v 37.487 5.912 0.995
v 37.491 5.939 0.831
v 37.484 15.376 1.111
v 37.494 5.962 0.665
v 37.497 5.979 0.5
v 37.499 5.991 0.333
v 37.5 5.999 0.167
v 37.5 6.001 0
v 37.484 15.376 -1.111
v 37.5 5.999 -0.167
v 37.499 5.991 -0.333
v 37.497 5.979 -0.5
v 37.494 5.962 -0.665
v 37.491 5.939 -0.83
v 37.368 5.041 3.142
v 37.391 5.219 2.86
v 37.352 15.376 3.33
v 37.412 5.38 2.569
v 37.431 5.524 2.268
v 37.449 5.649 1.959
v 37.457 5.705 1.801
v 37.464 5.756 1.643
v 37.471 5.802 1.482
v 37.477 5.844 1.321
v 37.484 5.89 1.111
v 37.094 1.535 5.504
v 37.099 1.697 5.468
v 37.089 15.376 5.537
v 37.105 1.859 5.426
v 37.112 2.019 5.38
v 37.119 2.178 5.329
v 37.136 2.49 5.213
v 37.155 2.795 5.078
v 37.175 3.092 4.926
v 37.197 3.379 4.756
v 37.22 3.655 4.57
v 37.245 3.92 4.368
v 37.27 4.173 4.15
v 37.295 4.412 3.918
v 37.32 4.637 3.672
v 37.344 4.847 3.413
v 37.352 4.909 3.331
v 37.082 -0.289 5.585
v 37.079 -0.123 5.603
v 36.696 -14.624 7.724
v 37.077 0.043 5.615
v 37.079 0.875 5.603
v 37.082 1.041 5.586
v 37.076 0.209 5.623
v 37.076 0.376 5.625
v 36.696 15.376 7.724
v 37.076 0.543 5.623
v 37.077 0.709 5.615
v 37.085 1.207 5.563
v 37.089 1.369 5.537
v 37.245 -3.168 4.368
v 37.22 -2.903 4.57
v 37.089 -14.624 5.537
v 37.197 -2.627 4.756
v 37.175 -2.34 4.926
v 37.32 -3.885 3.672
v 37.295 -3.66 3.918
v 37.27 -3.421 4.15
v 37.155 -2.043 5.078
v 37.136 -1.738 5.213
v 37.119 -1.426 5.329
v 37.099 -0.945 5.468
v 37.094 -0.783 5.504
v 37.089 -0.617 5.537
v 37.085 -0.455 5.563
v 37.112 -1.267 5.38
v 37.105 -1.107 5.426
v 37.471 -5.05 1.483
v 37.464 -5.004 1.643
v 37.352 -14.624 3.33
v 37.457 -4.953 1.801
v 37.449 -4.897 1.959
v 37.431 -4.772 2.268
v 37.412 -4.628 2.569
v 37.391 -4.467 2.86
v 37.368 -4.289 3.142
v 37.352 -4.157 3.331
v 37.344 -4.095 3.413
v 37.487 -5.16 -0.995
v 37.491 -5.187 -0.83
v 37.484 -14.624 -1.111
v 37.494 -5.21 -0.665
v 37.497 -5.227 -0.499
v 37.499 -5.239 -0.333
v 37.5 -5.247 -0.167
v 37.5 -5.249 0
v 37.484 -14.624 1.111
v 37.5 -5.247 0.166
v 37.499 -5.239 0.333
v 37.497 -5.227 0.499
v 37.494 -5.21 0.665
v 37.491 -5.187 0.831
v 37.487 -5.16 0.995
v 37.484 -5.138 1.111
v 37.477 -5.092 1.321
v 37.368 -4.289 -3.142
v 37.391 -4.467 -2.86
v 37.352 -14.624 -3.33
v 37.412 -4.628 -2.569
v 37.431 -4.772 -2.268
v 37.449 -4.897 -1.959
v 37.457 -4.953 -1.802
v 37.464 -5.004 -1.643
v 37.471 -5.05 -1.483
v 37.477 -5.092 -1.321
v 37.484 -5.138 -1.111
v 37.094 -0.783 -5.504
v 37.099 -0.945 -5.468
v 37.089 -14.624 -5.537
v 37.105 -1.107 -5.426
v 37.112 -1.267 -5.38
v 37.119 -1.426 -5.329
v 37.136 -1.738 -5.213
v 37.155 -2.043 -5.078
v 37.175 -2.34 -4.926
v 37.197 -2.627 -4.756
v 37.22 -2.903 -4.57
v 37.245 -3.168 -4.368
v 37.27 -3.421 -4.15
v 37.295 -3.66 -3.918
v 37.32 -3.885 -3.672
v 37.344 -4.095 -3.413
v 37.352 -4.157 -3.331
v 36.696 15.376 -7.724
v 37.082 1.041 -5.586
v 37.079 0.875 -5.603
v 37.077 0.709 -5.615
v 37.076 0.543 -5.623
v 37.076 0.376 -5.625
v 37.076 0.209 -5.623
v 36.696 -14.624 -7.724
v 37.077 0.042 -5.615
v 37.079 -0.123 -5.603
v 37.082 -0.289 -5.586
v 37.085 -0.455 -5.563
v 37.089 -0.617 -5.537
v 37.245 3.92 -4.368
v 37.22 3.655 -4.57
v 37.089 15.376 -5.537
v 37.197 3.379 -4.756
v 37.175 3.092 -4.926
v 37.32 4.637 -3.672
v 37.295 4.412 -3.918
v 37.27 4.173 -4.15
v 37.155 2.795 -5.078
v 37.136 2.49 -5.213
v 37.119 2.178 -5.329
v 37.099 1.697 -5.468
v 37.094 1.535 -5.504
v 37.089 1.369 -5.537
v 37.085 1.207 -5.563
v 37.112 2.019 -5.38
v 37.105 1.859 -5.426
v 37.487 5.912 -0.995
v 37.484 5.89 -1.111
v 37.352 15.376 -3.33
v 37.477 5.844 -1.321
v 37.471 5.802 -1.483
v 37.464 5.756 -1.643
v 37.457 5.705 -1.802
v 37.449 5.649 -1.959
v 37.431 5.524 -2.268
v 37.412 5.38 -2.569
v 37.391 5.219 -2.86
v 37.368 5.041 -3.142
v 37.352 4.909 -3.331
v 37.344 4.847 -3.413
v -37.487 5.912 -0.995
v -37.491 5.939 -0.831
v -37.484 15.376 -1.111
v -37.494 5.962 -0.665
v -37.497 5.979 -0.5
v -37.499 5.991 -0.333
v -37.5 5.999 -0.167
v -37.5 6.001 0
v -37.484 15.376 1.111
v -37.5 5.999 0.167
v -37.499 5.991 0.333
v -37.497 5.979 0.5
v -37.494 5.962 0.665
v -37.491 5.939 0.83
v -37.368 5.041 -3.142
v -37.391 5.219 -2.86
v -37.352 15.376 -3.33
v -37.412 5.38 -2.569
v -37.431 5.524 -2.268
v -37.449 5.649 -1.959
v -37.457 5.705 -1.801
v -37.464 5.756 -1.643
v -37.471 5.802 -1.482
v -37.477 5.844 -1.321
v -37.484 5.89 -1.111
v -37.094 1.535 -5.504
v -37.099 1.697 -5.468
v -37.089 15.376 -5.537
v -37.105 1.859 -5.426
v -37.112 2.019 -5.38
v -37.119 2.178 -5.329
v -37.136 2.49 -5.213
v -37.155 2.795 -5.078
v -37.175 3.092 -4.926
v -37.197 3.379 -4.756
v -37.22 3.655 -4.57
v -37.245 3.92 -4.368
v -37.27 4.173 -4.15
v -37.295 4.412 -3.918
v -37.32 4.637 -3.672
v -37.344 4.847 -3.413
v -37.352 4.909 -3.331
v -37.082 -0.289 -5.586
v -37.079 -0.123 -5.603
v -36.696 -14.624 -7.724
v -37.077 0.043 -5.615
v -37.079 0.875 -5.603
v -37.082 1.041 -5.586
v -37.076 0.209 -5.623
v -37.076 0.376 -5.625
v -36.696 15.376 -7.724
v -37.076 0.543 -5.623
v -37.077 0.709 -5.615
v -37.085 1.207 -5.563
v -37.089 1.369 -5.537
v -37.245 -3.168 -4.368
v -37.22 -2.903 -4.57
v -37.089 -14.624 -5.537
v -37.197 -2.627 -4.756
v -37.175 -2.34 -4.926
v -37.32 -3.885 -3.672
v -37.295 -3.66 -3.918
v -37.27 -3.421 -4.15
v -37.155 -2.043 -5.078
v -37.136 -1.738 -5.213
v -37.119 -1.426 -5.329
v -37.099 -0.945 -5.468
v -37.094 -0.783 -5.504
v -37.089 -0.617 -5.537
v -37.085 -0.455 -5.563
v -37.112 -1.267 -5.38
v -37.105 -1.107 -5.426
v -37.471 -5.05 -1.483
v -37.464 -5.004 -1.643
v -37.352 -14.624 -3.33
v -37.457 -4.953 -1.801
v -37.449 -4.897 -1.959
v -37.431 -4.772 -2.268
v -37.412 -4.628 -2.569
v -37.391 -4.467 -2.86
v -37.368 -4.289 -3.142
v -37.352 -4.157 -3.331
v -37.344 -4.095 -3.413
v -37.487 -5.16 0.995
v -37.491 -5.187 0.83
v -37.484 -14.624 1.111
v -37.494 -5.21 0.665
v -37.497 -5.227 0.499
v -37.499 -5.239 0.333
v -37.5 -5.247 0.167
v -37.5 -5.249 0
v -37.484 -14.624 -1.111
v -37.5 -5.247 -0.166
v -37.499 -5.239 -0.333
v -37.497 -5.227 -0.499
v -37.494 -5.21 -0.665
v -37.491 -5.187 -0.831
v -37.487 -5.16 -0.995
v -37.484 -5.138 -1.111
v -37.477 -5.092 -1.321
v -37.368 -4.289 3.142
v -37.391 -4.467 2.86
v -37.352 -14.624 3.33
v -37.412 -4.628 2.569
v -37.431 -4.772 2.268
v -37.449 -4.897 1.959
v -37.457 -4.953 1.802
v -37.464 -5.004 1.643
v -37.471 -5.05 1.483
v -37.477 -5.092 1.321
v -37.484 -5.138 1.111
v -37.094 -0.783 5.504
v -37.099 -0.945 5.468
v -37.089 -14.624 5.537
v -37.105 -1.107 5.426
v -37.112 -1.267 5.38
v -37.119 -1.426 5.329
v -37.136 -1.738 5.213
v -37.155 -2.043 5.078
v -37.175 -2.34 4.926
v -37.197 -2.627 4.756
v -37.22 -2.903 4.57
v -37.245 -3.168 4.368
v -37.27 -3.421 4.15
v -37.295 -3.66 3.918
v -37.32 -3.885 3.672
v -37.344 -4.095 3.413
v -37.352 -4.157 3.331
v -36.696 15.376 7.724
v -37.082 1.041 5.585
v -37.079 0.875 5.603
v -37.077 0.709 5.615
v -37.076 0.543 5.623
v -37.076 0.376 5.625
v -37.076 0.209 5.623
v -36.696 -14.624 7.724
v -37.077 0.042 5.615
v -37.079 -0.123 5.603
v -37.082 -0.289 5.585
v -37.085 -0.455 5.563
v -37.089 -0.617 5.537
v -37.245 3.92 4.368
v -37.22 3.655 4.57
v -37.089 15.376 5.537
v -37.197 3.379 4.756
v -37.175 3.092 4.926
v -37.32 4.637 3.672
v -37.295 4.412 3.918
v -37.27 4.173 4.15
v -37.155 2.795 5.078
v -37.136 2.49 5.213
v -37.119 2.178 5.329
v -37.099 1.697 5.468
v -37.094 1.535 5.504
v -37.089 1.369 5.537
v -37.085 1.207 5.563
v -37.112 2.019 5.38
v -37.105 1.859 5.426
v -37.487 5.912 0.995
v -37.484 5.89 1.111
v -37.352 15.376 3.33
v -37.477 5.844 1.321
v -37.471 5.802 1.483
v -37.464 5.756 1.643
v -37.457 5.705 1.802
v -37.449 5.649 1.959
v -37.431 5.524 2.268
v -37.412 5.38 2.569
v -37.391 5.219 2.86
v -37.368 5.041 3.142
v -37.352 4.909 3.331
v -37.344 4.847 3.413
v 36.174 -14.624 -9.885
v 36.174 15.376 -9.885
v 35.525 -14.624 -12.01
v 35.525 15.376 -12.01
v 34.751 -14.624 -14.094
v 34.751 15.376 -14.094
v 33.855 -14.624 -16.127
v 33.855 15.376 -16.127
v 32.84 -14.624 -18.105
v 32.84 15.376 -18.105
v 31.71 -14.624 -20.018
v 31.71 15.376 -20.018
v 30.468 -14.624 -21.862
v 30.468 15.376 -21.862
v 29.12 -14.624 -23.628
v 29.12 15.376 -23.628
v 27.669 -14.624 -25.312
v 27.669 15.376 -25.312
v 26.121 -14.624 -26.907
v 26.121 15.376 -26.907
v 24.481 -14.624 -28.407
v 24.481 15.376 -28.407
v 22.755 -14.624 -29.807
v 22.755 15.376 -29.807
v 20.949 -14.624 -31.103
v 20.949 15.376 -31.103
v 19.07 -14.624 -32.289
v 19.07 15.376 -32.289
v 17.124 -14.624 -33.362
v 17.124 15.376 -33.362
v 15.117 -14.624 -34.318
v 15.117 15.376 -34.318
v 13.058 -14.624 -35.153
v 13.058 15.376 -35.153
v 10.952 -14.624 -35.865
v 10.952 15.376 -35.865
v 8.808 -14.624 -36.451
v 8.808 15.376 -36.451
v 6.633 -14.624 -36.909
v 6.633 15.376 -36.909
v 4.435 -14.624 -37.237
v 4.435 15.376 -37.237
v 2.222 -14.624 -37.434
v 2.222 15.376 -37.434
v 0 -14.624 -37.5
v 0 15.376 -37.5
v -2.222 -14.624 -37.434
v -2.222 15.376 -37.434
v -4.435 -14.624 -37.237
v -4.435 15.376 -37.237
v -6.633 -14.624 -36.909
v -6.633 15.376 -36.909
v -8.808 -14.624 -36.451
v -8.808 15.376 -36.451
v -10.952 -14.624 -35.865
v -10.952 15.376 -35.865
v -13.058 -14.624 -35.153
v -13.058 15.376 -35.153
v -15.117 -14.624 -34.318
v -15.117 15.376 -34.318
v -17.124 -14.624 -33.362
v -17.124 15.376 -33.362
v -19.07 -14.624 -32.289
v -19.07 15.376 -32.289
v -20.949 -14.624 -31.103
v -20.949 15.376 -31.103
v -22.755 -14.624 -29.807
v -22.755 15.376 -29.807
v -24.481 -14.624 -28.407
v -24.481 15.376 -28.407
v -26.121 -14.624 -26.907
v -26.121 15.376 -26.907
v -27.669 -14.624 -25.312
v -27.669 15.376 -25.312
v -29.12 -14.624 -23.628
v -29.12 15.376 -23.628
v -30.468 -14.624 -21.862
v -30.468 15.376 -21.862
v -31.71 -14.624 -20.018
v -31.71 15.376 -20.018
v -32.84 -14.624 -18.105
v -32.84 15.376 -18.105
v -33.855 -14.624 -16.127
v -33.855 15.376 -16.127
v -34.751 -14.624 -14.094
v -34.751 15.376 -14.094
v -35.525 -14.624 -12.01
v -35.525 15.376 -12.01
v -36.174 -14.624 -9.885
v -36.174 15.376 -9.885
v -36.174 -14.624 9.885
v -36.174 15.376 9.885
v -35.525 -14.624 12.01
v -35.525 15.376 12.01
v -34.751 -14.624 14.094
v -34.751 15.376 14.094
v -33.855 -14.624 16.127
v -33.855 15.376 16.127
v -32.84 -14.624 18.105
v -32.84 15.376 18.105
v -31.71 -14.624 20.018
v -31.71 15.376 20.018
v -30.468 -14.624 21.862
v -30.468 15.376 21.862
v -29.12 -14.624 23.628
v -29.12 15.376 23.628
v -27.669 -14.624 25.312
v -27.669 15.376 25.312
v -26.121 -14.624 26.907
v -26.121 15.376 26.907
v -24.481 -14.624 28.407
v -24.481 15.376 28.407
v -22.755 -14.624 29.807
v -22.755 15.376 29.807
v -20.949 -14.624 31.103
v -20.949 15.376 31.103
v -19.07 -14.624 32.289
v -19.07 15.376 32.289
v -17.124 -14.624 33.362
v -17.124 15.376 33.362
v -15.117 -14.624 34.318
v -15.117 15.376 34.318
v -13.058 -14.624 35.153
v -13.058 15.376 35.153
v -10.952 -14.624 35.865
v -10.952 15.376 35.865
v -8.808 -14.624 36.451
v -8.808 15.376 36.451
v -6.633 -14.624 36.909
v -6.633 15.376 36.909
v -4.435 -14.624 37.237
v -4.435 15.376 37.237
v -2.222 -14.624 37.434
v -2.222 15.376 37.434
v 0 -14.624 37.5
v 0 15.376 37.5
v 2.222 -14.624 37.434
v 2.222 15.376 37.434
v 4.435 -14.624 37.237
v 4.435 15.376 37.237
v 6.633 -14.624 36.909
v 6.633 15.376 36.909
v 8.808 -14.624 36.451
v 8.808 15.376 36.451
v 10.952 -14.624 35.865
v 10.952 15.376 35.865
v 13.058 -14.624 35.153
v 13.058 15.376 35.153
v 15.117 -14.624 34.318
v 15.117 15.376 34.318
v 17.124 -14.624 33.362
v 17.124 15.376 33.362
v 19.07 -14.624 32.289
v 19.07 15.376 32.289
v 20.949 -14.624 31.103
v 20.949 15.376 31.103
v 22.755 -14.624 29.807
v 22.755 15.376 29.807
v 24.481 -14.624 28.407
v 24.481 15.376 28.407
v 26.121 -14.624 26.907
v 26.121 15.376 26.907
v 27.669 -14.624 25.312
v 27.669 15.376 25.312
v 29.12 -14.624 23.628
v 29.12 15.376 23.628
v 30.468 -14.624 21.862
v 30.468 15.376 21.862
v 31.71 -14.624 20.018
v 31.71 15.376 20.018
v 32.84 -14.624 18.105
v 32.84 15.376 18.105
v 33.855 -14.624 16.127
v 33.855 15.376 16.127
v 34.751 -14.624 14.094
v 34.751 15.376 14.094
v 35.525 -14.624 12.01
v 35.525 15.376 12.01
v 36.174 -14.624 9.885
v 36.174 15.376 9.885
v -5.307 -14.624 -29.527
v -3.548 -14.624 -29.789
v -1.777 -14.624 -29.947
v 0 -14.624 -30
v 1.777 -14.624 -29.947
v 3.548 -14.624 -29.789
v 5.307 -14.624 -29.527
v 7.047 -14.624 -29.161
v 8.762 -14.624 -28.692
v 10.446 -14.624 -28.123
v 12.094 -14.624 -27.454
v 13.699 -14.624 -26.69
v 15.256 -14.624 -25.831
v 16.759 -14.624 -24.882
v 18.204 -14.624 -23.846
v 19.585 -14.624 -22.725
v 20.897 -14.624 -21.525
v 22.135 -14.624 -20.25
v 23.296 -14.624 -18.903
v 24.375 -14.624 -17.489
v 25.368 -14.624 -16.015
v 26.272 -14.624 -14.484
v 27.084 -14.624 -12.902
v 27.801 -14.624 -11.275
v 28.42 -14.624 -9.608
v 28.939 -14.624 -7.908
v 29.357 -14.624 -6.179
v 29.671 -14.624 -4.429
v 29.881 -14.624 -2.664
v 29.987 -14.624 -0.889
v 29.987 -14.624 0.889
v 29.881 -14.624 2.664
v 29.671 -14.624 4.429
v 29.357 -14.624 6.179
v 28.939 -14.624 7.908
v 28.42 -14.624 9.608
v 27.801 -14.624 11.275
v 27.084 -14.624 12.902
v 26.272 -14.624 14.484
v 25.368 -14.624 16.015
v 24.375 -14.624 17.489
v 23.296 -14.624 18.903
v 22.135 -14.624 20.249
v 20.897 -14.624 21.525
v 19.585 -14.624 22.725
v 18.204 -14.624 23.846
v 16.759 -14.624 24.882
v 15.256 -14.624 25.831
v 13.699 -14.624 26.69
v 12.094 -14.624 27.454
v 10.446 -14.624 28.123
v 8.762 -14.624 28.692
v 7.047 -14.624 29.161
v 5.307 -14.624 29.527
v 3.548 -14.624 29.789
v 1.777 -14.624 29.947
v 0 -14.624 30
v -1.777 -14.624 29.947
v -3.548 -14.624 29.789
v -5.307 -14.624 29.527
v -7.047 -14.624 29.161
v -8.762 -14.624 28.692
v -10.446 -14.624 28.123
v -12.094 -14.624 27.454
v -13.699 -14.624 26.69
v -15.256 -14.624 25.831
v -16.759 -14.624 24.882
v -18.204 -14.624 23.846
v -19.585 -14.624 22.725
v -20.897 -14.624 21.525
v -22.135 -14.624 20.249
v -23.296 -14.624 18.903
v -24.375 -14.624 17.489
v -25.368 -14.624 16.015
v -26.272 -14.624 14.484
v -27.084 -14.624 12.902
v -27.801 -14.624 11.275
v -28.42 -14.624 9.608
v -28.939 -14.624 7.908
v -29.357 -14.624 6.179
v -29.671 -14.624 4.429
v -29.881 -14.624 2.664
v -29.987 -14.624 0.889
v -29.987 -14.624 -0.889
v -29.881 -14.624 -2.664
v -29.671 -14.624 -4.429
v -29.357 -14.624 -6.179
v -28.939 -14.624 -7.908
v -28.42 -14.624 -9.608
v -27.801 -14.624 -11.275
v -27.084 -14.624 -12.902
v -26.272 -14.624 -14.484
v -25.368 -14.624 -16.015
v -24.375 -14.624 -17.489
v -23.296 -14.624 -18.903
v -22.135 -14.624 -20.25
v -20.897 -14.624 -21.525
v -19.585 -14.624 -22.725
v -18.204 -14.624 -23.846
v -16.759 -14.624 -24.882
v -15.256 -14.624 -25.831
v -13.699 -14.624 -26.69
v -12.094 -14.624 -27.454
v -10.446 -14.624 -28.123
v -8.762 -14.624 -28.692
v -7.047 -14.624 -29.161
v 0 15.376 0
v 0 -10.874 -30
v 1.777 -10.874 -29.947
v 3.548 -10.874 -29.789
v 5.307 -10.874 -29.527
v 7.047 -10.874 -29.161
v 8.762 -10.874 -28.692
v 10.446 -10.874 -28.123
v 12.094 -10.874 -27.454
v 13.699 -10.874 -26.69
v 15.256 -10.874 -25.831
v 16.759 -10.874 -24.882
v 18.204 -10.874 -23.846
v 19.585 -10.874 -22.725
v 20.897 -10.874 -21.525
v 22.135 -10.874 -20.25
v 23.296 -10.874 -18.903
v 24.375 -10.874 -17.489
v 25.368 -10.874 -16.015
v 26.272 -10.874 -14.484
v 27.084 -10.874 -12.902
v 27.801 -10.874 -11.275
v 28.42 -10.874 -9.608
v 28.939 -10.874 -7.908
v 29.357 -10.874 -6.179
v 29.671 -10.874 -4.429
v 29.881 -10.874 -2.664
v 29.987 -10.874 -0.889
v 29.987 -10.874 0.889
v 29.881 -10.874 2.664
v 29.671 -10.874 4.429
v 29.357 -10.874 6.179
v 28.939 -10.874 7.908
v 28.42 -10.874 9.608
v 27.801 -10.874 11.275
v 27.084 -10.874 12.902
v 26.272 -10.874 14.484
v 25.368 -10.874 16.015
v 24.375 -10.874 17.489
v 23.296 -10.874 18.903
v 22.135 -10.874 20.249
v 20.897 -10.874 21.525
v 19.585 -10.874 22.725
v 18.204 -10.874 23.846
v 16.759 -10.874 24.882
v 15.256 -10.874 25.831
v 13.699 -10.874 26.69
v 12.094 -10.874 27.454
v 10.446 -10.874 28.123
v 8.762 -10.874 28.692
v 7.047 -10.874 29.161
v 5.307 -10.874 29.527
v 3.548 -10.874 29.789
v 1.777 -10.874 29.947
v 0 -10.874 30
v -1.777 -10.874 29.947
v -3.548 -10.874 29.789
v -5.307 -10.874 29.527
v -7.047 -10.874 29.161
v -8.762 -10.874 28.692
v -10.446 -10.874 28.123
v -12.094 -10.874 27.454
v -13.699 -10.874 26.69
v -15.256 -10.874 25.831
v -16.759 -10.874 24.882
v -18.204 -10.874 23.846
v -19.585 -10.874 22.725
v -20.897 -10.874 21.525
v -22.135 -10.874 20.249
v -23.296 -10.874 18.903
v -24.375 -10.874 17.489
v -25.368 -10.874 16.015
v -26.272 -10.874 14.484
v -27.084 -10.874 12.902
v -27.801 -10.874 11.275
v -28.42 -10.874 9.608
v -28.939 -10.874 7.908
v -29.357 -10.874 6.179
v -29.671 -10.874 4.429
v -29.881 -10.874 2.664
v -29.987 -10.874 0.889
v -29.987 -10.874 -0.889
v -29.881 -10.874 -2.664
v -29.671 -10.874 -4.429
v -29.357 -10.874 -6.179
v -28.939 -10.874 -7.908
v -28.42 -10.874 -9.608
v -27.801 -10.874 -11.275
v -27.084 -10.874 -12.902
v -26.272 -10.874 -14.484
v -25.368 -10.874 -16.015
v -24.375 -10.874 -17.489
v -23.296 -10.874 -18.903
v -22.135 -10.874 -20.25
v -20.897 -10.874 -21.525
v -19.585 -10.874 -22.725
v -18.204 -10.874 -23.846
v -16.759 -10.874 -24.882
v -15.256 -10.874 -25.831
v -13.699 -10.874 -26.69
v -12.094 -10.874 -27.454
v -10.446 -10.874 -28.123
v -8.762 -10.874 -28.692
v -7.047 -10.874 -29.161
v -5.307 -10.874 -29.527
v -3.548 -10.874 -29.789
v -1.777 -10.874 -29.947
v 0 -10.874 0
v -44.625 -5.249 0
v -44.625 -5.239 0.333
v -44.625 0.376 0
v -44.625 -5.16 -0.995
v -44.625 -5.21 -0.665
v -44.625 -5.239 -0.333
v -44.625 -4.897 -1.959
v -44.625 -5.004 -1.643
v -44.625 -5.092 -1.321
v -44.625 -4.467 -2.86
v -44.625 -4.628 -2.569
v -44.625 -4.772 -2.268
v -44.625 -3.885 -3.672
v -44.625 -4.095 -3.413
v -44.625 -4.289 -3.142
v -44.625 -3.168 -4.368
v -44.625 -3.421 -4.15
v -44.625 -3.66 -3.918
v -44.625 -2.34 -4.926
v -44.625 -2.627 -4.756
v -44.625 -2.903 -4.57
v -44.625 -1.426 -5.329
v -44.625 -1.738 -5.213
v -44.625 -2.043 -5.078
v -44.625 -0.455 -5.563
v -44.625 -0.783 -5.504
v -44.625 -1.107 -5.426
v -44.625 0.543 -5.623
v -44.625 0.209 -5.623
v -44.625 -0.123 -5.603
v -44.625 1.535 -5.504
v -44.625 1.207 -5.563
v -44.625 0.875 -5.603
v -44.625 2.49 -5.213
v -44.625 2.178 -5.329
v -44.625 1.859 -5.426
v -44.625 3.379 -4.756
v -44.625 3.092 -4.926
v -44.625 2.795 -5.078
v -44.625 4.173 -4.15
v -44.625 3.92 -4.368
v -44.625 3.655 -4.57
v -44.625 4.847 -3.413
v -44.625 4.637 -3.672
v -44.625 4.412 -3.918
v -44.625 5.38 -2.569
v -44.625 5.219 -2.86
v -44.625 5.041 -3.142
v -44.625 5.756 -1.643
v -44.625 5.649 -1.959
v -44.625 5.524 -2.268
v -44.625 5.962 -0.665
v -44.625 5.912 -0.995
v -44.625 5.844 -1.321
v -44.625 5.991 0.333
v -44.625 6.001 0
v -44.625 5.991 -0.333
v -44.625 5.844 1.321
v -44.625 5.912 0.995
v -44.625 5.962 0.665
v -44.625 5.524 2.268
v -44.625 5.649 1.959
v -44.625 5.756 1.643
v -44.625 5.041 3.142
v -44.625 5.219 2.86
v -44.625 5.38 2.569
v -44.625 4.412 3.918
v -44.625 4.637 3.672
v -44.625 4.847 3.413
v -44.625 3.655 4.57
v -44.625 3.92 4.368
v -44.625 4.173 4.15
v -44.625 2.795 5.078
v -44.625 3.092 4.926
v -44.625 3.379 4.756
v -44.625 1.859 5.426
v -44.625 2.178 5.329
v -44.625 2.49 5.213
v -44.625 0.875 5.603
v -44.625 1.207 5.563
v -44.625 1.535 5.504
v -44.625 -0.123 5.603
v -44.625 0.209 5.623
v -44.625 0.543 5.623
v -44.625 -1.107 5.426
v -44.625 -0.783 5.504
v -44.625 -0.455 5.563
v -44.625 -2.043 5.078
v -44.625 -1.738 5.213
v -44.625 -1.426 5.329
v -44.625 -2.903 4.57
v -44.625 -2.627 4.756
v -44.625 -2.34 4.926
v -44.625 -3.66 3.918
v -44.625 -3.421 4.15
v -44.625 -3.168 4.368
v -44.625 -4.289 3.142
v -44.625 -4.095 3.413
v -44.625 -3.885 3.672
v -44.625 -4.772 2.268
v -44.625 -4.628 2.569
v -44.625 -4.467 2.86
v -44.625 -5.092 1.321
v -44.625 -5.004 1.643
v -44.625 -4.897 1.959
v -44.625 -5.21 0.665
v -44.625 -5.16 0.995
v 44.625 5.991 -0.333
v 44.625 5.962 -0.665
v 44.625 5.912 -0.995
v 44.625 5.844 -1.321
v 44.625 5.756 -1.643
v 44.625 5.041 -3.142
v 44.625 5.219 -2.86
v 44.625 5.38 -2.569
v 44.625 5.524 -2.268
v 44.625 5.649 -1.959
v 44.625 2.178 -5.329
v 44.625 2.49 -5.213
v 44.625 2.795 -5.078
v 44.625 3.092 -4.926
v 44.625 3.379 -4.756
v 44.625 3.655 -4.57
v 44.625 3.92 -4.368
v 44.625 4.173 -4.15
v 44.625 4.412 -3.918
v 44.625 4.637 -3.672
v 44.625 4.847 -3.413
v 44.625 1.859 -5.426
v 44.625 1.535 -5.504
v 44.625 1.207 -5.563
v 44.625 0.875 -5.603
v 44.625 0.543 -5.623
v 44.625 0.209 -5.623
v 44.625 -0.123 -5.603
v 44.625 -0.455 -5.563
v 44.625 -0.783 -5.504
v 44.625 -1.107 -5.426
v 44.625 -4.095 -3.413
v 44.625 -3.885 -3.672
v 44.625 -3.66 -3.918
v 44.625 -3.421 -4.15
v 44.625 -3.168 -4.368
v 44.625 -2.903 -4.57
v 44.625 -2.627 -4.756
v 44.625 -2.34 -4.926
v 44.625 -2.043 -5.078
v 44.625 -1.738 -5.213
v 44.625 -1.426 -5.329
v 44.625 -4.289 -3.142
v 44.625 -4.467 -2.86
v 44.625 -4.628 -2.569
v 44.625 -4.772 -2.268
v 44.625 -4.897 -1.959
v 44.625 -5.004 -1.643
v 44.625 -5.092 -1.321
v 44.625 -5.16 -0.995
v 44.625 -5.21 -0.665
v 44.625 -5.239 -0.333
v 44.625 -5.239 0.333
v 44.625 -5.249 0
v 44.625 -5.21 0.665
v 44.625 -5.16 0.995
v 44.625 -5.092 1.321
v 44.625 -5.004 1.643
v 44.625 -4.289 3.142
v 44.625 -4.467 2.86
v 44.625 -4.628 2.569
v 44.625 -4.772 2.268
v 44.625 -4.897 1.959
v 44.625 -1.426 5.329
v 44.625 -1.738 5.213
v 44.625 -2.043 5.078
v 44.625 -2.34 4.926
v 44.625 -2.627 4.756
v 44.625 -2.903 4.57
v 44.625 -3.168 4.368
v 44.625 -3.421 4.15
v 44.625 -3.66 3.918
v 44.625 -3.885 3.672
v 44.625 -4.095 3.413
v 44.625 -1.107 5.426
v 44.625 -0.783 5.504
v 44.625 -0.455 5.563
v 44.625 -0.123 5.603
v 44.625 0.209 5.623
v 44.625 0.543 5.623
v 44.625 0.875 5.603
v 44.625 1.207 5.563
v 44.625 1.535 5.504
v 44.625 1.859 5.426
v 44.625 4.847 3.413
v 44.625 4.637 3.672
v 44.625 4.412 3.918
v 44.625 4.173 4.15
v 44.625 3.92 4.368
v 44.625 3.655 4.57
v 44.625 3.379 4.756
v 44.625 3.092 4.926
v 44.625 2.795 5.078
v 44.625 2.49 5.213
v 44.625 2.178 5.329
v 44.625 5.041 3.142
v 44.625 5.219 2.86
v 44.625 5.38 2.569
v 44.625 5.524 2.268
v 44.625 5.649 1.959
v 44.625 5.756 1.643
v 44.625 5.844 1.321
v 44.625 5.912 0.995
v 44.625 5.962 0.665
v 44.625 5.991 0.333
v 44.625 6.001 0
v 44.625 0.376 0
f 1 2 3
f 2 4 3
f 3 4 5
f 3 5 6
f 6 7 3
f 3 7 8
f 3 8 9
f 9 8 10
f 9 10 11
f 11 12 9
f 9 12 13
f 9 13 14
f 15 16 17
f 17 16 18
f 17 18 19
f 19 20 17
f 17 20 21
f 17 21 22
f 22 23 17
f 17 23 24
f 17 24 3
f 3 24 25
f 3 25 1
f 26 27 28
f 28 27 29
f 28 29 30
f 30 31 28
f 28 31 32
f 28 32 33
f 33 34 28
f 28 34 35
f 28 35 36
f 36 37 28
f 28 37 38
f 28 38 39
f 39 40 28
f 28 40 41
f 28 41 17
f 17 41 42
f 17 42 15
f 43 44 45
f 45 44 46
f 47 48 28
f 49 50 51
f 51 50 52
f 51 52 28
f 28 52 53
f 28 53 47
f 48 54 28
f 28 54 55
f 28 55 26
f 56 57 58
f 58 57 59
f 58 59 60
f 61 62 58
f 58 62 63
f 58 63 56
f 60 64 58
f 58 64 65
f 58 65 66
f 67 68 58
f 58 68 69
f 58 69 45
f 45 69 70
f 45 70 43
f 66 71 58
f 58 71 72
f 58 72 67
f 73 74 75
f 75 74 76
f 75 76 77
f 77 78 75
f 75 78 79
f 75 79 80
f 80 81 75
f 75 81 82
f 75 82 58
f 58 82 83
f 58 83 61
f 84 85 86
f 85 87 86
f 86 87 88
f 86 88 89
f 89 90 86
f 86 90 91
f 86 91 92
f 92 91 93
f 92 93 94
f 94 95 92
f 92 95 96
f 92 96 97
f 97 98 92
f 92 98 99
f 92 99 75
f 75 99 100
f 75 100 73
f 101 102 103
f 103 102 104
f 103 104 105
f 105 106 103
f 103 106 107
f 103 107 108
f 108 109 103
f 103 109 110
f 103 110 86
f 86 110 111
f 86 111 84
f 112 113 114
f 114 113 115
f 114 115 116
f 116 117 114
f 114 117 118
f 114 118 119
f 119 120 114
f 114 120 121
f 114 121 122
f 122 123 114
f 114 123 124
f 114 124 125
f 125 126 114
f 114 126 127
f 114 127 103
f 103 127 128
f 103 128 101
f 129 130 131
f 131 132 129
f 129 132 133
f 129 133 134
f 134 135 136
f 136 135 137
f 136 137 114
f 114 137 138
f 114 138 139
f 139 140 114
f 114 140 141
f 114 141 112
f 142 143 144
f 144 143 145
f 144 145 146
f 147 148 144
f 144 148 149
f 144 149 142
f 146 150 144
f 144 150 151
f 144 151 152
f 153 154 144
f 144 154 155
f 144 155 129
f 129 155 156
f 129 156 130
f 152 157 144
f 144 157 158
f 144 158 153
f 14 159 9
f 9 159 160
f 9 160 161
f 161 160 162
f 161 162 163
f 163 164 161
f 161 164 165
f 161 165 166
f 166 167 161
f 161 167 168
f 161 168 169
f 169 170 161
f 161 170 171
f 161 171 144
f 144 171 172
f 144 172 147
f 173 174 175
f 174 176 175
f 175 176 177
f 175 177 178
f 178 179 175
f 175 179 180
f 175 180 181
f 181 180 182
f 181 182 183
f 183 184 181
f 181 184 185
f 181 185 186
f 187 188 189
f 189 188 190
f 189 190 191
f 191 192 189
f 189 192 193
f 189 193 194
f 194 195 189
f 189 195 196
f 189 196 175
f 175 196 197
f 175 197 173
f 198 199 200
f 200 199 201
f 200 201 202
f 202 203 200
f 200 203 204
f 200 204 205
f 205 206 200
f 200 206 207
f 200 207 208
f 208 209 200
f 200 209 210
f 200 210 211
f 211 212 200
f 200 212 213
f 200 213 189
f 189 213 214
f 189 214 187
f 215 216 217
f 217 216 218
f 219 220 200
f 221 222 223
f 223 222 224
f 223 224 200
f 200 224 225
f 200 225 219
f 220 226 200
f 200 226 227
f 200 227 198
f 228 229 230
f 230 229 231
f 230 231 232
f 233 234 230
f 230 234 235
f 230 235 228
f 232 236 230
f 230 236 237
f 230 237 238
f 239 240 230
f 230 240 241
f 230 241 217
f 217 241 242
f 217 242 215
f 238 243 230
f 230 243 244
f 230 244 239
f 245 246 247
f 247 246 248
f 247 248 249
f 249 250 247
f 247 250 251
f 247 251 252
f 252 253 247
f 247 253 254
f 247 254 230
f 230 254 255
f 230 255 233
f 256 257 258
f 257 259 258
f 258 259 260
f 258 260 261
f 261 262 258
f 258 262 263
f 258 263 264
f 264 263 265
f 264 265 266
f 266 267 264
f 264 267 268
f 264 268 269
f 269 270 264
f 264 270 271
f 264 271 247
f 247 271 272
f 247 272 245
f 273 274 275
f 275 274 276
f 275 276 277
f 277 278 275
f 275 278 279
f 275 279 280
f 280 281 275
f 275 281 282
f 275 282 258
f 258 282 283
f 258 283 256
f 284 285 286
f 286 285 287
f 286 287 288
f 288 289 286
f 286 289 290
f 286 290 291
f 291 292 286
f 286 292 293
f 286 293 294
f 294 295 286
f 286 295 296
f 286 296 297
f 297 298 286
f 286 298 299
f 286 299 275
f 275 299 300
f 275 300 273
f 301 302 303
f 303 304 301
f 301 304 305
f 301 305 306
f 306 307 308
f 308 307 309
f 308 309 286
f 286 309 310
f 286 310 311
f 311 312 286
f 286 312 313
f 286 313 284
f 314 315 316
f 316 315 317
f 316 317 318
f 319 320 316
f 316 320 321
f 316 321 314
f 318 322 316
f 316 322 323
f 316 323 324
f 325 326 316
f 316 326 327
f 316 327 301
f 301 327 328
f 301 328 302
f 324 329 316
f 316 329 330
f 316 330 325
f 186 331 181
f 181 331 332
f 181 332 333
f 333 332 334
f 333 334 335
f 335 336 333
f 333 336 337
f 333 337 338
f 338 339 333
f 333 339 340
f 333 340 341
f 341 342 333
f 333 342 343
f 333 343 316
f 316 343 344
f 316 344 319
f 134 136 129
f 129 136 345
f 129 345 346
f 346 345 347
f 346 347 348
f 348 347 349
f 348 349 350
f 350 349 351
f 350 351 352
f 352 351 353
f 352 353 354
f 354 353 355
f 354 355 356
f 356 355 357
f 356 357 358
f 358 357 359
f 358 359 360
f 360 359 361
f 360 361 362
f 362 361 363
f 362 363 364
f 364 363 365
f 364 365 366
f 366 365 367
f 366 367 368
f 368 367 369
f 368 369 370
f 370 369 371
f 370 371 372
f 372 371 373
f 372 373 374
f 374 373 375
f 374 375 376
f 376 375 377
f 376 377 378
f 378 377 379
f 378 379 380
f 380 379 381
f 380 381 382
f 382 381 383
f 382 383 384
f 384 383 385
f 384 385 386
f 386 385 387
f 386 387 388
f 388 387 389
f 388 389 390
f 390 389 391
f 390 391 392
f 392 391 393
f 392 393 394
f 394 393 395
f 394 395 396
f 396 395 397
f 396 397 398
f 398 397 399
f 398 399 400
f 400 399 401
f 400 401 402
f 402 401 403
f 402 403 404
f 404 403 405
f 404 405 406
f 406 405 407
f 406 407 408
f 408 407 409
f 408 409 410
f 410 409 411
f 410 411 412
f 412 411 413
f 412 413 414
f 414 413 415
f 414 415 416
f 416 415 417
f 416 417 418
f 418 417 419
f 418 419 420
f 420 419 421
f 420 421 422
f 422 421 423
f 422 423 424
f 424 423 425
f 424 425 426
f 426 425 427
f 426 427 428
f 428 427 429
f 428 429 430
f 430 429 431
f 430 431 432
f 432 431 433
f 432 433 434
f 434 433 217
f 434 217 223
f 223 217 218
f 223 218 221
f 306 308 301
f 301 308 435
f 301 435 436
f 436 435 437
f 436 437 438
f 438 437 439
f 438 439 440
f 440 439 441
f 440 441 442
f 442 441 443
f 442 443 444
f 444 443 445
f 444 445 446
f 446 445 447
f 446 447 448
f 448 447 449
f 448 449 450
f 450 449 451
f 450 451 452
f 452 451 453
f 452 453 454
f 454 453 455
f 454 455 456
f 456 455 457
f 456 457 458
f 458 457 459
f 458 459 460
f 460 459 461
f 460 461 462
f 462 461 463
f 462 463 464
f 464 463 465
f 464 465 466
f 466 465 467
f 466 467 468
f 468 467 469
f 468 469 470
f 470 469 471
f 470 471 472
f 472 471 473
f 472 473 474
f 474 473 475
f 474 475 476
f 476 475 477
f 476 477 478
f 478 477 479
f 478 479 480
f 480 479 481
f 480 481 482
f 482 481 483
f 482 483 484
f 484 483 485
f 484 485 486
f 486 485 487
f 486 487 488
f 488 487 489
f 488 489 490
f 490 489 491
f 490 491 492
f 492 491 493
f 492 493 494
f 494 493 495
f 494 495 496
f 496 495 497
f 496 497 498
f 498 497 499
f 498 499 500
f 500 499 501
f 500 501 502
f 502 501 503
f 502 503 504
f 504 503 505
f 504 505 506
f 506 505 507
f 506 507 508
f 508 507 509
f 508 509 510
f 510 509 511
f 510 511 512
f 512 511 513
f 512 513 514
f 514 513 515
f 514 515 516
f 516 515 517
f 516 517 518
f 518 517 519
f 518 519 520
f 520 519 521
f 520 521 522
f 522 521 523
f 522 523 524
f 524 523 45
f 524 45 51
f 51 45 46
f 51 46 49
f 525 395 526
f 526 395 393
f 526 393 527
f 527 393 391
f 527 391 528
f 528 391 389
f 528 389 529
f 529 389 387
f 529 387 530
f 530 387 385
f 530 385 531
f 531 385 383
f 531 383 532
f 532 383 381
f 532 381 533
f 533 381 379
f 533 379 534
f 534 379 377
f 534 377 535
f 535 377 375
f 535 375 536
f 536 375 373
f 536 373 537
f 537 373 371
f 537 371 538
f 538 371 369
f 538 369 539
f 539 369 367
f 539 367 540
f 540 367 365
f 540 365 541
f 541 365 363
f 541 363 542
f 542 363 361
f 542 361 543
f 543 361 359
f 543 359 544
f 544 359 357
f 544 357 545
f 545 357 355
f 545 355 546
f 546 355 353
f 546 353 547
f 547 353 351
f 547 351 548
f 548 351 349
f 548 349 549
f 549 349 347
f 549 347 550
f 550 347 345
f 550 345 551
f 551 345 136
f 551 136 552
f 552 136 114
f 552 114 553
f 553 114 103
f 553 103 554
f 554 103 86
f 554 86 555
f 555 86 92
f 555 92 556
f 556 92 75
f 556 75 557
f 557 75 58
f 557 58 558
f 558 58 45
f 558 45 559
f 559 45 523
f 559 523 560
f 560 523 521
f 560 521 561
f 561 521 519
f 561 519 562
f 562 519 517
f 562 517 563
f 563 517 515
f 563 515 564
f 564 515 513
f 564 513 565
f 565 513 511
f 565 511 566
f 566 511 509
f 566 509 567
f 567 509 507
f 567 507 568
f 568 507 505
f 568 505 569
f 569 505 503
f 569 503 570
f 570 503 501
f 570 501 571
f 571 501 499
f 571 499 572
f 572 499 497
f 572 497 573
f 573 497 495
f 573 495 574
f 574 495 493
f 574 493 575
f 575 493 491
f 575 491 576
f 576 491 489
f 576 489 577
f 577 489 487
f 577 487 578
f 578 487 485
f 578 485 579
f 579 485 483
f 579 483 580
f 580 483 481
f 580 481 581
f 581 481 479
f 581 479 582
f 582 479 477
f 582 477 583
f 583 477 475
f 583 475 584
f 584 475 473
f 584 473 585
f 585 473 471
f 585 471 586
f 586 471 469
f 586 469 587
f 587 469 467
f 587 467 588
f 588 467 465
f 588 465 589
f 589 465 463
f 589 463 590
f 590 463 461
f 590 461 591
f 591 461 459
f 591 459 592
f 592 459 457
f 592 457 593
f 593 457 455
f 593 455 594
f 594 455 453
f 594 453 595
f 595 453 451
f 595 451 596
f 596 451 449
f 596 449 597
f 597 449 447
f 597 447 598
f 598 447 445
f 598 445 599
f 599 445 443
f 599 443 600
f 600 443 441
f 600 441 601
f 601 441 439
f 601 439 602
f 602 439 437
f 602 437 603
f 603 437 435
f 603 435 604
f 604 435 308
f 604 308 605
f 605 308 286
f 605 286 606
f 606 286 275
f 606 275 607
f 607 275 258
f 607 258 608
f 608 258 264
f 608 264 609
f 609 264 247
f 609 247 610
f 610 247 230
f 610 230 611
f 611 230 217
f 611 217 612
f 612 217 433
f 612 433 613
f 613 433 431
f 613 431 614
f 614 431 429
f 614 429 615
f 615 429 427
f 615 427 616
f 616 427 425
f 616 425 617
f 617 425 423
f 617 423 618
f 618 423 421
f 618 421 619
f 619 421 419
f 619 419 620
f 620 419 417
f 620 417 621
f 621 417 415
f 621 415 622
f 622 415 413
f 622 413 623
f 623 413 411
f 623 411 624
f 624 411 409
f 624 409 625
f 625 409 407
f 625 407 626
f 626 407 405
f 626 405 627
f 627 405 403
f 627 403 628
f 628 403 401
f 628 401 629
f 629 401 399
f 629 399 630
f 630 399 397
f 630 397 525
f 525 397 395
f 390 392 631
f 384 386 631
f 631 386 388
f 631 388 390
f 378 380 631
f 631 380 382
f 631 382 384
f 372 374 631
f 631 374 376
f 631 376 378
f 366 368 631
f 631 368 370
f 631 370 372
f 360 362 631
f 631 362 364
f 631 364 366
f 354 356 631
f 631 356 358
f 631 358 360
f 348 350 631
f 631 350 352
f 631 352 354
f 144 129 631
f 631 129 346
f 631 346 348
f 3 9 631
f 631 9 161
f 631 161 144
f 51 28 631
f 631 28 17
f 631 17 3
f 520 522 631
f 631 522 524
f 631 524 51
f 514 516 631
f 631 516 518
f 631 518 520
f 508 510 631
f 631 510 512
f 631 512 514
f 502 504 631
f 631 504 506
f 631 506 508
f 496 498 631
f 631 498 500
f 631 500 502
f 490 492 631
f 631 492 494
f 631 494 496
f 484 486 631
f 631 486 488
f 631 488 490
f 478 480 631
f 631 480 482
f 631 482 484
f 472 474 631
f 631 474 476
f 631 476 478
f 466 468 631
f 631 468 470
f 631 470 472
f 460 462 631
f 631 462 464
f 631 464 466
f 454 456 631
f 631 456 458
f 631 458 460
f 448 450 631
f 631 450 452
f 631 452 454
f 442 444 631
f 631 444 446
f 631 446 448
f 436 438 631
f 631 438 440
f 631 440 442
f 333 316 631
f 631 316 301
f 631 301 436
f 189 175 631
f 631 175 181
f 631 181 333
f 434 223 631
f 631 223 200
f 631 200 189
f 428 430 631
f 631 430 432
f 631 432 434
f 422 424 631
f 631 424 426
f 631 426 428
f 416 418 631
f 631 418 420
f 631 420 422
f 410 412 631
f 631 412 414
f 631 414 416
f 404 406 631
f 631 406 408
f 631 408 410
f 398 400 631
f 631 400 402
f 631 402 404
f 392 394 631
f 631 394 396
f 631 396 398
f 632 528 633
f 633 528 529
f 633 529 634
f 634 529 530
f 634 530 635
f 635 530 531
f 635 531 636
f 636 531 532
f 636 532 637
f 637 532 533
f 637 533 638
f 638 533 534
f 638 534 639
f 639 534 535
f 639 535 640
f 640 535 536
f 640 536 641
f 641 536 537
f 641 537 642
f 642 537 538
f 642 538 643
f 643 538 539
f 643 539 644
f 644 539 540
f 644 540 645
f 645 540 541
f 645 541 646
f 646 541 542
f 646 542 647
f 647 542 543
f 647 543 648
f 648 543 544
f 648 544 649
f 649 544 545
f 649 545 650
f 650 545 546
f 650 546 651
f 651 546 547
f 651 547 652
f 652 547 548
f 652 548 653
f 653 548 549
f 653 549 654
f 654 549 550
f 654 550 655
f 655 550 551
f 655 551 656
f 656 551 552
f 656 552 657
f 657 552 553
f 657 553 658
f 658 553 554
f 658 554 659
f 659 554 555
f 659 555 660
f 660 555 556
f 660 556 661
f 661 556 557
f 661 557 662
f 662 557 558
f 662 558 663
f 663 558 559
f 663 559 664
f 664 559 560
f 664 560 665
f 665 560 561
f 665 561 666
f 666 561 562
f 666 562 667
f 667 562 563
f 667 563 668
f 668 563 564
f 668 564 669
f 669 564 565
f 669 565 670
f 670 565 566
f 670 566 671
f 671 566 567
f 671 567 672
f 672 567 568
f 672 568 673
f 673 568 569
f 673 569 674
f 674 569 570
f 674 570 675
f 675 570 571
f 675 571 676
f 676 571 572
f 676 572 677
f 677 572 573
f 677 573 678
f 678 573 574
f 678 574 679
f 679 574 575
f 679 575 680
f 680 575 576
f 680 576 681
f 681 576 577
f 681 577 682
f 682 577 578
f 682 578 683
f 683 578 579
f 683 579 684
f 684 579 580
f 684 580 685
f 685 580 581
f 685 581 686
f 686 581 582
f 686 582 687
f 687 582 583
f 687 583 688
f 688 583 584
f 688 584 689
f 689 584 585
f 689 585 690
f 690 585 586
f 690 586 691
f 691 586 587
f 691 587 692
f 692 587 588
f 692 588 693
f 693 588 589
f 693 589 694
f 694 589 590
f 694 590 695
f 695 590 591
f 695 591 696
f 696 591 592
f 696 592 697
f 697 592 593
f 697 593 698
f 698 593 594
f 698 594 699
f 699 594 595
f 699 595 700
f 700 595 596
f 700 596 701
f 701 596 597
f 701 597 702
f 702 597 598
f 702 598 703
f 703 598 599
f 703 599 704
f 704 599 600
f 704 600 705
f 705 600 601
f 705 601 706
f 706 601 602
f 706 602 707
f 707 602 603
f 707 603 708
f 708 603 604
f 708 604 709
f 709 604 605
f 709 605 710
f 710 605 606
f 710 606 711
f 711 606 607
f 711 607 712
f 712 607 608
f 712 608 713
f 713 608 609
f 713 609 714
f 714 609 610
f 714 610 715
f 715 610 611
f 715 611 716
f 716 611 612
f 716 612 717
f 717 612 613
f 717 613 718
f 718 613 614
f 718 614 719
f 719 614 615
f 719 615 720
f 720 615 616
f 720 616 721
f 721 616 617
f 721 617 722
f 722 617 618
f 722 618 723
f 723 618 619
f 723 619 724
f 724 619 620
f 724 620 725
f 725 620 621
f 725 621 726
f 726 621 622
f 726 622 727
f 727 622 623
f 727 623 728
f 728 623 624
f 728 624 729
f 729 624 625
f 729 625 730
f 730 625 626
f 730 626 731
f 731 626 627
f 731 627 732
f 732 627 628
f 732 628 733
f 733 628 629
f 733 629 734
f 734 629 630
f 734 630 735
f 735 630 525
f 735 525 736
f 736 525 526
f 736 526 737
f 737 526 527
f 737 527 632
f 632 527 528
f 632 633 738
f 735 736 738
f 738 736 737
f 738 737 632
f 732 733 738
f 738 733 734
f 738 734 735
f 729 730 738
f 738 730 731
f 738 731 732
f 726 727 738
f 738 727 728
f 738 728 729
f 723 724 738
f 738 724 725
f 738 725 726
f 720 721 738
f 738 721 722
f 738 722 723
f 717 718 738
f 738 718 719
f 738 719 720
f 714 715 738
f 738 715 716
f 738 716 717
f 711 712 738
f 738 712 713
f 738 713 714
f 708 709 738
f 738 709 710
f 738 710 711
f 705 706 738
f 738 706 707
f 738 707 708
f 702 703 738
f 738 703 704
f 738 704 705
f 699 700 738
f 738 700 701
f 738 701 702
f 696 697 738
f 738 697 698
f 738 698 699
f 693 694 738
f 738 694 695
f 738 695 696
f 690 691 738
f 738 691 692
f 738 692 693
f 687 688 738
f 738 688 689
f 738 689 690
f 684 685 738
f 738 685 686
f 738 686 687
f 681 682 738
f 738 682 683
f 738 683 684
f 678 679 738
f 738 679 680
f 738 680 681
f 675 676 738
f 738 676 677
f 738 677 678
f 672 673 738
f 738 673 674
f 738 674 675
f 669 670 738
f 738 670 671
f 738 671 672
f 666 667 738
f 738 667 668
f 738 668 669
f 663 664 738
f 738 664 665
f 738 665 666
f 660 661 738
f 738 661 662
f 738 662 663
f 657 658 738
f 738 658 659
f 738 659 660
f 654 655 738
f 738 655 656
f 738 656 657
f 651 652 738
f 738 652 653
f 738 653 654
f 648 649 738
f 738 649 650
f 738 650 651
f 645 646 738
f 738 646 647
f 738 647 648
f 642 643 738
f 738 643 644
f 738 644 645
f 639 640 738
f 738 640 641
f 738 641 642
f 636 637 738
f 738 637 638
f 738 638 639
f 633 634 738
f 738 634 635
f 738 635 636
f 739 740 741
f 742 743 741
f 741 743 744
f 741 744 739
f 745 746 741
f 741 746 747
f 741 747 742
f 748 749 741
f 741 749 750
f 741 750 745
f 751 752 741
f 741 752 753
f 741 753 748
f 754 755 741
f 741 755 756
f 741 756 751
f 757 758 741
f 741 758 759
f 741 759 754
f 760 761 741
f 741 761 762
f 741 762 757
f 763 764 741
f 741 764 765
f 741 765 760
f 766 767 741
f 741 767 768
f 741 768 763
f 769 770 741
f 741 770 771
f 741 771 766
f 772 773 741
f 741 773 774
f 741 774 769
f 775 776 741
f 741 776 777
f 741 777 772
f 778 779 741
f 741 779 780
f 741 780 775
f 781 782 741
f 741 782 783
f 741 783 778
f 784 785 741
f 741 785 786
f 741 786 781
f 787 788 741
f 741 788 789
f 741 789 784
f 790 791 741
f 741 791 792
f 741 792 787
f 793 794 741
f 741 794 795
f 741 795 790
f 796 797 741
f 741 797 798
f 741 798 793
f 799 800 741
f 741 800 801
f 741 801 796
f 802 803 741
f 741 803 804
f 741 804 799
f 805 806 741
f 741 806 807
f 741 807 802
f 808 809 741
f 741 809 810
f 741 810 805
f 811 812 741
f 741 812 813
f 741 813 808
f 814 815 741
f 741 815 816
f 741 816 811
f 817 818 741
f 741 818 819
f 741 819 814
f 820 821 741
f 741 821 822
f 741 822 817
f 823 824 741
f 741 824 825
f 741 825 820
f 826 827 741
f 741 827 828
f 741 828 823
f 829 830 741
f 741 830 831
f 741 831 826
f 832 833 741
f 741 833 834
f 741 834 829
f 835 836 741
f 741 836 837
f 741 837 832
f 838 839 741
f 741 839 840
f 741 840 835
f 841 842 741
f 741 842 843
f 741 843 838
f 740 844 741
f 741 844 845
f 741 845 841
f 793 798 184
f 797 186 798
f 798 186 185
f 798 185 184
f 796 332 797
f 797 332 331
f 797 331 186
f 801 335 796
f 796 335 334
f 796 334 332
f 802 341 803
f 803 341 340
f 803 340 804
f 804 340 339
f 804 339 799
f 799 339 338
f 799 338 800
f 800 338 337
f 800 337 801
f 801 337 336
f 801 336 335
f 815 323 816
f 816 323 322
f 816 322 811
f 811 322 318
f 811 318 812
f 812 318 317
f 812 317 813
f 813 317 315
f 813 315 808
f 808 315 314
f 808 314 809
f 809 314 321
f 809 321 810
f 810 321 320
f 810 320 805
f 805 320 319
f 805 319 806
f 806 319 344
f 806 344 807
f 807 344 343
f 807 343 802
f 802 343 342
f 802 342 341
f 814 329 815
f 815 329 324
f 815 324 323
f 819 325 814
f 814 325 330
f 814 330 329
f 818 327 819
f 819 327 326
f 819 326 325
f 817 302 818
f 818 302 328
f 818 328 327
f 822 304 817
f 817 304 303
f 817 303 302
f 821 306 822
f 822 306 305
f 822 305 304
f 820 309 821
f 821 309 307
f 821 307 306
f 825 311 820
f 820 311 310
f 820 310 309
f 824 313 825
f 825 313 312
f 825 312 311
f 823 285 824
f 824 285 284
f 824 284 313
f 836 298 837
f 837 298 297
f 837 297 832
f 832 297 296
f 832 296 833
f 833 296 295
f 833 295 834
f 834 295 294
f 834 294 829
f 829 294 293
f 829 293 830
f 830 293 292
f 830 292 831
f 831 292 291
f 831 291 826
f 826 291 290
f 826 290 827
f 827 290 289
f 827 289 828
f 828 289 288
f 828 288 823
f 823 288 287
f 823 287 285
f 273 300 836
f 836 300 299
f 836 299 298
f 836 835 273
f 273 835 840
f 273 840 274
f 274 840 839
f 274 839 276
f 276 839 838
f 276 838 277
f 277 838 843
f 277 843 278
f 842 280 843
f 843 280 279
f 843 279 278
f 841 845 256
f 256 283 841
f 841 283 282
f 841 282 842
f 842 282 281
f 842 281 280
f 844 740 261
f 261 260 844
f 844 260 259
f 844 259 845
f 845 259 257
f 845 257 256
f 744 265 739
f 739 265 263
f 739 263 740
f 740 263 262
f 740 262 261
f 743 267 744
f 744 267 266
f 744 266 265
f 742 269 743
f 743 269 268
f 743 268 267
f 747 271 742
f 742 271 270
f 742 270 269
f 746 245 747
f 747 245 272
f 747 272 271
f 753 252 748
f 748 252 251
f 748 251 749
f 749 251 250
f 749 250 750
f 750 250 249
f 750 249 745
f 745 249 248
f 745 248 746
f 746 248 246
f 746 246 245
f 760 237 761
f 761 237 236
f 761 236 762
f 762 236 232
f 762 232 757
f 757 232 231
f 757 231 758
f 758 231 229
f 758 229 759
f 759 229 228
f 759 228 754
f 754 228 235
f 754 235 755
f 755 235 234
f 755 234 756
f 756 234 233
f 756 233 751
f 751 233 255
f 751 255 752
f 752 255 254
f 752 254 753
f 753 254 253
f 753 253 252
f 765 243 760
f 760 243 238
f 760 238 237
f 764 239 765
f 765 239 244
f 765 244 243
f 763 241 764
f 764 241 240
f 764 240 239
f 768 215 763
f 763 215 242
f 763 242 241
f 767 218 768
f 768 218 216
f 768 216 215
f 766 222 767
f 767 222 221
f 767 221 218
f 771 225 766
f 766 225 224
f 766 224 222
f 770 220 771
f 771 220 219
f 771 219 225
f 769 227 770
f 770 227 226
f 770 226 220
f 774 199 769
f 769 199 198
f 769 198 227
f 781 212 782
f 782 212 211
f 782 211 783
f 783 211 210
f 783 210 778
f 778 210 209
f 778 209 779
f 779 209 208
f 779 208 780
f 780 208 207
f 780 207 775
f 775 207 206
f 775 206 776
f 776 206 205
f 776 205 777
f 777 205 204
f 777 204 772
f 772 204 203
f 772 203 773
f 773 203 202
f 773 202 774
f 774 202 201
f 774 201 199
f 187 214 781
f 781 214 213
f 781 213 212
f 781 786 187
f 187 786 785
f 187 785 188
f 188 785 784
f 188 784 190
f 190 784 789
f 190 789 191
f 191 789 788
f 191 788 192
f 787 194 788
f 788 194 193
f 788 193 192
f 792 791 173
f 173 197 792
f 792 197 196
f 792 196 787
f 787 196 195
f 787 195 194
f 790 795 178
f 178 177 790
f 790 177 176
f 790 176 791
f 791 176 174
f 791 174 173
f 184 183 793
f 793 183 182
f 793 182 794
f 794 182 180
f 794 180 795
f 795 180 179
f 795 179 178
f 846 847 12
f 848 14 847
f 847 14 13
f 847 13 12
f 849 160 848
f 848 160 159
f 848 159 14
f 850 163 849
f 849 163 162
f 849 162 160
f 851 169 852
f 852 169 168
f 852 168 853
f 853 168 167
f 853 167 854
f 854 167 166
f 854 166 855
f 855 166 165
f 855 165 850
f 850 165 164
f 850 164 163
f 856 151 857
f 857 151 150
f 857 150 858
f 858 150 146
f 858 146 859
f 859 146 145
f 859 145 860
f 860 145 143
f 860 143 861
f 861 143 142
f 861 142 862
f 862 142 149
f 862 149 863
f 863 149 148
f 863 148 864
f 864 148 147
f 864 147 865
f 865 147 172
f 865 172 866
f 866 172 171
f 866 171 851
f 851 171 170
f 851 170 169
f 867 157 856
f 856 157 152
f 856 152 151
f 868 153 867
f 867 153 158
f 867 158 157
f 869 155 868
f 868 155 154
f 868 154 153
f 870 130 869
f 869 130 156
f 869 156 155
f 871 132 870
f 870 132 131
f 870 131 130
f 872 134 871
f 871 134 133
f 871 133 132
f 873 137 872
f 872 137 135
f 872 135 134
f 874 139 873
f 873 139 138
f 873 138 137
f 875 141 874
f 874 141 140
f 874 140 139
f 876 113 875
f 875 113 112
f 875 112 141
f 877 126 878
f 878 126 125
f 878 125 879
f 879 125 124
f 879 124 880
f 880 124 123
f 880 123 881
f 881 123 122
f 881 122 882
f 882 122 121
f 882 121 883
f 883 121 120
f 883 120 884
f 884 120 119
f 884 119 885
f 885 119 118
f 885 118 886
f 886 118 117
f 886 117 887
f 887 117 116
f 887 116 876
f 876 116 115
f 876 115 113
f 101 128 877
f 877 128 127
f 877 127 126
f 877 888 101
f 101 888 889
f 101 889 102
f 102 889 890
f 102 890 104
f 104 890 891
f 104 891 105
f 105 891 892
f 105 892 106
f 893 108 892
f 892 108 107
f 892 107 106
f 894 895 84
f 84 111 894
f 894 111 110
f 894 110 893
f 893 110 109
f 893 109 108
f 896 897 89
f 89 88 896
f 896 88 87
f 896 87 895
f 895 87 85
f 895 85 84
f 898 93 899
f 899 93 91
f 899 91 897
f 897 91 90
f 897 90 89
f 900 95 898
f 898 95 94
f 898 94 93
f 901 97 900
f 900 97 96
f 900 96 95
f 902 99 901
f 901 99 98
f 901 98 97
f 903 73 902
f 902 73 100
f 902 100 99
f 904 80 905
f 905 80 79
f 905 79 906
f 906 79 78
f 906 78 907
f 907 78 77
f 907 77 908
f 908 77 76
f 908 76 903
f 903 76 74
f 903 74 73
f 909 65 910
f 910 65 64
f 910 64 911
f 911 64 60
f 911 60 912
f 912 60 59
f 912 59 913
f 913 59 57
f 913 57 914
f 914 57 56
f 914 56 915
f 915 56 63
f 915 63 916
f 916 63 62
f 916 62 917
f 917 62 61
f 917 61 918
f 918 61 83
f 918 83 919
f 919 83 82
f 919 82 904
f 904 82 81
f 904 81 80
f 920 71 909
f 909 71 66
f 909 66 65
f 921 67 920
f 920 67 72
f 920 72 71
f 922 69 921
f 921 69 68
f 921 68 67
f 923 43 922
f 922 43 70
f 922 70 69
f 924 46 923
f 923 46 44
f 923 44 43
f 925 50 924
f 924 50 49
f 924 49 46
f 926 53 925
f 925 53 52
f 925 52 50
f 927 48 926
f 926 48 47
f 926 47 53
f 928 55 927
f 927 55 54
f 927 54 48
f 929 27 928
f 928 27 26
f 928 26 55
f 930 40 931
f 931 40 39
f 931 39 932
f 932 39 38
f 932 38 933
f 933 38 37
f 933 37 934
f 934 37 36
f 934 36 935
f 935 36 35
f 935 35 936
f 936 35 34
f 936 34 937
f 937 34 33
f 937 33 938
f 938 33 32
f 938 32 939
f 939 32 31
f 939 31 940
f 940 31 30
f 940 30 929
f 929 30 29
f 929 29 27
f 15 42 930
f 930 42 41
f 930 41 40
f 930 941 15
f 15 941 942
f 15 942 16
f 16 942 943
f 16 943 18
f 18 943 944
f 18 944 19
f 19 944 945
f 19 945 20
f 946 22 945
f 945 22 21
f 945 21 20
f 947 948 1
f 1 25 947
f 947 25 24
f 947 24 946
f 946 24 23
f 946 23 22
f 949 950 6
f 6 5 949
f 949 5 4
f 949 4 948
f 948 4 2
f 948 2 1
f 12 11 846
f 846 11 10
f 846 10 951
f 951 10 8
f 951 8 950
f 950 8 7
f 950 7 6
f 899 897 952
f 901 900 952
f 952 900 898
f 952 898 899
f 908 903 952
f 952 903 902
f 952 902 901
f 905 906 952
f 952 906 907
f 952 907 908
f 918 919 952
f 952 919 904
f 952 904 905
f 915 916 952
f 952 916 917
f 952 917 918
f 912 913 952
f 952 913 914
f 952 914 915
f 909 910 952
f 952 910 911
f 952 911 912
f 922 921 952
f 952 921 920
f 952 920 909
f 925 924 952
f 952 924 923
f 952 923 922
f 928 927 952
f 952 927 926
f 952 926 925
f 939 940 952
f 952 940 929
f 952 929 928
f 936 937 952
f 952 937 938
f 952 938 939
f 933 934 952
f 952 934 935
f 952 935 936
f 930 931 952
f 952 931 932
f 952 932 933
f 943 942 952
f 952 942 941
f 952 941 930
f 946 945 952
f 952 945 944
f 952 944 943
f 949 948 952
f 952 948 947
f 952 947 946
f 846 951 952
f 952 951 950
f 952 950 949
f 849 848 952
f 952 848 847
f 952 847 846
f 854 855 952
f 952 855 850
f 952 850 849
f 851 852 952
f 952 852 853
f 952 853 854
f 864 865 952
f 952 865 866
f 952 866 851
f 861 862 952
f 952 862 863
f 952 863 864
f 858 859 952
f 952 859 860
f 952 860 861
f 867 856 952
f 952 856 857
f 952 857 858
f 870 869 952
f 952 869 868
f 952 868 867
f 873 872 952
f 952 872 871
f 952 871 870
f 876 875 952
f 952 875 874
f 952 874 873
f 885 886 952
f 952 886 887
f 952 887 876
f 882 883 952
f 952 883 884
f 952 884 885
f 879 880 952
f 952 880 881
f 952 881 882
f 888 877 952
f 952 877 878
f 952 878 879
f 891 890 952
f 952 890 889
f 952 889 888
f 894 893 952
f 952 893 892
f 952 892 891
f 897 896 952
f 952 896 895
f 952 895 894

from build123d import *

# Parameters (mm, degrees)
SKIZZE1_R                          = 50
AUFSATZ_LINEAR_AUSTRAGEN1_DEPTH    = 20
SKIZZE2_R                          = 40
SCHNITT_LINEAR_AUSTRAGEN1_DEPTH    = 5
SKIZZE3_R                          = 7.5
AUFSATZ_LINEAR_AUSTRAGEN2_DEPTH    = 59.5
SKALIEREN1_SCALE                   = 0.75
K_RPER_VERSCHIEBEN_KOPIEREN1_ANGLE = 120


with BuildPart() as part:
    # Skizze1 → Aufsatz-Linear austragen1 (new, symmetric)
    with BuildSketch(Plane(origin=(0, 0, 0), x_dir=(0, 1, 0), z_dir=(0, 0, 1))):
        with Locations(Location((0, 0, 0), (0, 0, 270))):
            Circle(SKIZZE1_R)
    extrude(amount=AUFSATZ_LINEAR_AUSTRAGEN1_DEPTH, both=True)

    # Skizze2 → Schnitt-Linear austragen1 (cut)
    with BuildSketch(Plane.XY.offset(20)):
        Circle(SKIZZE2_R)
    extrude(amount=-SCHNITT_LINEAR_AUSTRAGEN1_DEPTH, mode=Mode.SUBTRACT)

    # Skizze3 → Aufsatz-Linear austragen2 (add, symmetric)
    with BuildSketch(Plane(origin=(0, 0, 0), x_dir=(-1, 0, 0), z_dir=(0, 1, 0))):
        with Locations(Location((0, 0, 0), (0, 0, 270))):
            Circle(SKIZZE3_R)
    extrude(amount=AUFSATZ_LINEAR_AUSTRAGEN2_DEPTH, both=True)


with BuildPart() as part_1:
    # Skalieren1: scaled about (4.8248e-05, 1e-09, -1.504015825)
    add(part.part.scale(SKALIEREN1_SCALE).moved(Location((1.2062e-05, 0, -0.376003956))))


with BuildPart() as part_2:
    # Körper-Verschieben/Kopieren1: moved
    add(part_1.part.rotate(Axis((0, 0, 0), (0.5773502691896928, 0.5773502691894897, -0.5773502691896948)), K_RPER_VERSCHIEBEN_KOPIEREN1_ANGLE))


solid = part_2.part
